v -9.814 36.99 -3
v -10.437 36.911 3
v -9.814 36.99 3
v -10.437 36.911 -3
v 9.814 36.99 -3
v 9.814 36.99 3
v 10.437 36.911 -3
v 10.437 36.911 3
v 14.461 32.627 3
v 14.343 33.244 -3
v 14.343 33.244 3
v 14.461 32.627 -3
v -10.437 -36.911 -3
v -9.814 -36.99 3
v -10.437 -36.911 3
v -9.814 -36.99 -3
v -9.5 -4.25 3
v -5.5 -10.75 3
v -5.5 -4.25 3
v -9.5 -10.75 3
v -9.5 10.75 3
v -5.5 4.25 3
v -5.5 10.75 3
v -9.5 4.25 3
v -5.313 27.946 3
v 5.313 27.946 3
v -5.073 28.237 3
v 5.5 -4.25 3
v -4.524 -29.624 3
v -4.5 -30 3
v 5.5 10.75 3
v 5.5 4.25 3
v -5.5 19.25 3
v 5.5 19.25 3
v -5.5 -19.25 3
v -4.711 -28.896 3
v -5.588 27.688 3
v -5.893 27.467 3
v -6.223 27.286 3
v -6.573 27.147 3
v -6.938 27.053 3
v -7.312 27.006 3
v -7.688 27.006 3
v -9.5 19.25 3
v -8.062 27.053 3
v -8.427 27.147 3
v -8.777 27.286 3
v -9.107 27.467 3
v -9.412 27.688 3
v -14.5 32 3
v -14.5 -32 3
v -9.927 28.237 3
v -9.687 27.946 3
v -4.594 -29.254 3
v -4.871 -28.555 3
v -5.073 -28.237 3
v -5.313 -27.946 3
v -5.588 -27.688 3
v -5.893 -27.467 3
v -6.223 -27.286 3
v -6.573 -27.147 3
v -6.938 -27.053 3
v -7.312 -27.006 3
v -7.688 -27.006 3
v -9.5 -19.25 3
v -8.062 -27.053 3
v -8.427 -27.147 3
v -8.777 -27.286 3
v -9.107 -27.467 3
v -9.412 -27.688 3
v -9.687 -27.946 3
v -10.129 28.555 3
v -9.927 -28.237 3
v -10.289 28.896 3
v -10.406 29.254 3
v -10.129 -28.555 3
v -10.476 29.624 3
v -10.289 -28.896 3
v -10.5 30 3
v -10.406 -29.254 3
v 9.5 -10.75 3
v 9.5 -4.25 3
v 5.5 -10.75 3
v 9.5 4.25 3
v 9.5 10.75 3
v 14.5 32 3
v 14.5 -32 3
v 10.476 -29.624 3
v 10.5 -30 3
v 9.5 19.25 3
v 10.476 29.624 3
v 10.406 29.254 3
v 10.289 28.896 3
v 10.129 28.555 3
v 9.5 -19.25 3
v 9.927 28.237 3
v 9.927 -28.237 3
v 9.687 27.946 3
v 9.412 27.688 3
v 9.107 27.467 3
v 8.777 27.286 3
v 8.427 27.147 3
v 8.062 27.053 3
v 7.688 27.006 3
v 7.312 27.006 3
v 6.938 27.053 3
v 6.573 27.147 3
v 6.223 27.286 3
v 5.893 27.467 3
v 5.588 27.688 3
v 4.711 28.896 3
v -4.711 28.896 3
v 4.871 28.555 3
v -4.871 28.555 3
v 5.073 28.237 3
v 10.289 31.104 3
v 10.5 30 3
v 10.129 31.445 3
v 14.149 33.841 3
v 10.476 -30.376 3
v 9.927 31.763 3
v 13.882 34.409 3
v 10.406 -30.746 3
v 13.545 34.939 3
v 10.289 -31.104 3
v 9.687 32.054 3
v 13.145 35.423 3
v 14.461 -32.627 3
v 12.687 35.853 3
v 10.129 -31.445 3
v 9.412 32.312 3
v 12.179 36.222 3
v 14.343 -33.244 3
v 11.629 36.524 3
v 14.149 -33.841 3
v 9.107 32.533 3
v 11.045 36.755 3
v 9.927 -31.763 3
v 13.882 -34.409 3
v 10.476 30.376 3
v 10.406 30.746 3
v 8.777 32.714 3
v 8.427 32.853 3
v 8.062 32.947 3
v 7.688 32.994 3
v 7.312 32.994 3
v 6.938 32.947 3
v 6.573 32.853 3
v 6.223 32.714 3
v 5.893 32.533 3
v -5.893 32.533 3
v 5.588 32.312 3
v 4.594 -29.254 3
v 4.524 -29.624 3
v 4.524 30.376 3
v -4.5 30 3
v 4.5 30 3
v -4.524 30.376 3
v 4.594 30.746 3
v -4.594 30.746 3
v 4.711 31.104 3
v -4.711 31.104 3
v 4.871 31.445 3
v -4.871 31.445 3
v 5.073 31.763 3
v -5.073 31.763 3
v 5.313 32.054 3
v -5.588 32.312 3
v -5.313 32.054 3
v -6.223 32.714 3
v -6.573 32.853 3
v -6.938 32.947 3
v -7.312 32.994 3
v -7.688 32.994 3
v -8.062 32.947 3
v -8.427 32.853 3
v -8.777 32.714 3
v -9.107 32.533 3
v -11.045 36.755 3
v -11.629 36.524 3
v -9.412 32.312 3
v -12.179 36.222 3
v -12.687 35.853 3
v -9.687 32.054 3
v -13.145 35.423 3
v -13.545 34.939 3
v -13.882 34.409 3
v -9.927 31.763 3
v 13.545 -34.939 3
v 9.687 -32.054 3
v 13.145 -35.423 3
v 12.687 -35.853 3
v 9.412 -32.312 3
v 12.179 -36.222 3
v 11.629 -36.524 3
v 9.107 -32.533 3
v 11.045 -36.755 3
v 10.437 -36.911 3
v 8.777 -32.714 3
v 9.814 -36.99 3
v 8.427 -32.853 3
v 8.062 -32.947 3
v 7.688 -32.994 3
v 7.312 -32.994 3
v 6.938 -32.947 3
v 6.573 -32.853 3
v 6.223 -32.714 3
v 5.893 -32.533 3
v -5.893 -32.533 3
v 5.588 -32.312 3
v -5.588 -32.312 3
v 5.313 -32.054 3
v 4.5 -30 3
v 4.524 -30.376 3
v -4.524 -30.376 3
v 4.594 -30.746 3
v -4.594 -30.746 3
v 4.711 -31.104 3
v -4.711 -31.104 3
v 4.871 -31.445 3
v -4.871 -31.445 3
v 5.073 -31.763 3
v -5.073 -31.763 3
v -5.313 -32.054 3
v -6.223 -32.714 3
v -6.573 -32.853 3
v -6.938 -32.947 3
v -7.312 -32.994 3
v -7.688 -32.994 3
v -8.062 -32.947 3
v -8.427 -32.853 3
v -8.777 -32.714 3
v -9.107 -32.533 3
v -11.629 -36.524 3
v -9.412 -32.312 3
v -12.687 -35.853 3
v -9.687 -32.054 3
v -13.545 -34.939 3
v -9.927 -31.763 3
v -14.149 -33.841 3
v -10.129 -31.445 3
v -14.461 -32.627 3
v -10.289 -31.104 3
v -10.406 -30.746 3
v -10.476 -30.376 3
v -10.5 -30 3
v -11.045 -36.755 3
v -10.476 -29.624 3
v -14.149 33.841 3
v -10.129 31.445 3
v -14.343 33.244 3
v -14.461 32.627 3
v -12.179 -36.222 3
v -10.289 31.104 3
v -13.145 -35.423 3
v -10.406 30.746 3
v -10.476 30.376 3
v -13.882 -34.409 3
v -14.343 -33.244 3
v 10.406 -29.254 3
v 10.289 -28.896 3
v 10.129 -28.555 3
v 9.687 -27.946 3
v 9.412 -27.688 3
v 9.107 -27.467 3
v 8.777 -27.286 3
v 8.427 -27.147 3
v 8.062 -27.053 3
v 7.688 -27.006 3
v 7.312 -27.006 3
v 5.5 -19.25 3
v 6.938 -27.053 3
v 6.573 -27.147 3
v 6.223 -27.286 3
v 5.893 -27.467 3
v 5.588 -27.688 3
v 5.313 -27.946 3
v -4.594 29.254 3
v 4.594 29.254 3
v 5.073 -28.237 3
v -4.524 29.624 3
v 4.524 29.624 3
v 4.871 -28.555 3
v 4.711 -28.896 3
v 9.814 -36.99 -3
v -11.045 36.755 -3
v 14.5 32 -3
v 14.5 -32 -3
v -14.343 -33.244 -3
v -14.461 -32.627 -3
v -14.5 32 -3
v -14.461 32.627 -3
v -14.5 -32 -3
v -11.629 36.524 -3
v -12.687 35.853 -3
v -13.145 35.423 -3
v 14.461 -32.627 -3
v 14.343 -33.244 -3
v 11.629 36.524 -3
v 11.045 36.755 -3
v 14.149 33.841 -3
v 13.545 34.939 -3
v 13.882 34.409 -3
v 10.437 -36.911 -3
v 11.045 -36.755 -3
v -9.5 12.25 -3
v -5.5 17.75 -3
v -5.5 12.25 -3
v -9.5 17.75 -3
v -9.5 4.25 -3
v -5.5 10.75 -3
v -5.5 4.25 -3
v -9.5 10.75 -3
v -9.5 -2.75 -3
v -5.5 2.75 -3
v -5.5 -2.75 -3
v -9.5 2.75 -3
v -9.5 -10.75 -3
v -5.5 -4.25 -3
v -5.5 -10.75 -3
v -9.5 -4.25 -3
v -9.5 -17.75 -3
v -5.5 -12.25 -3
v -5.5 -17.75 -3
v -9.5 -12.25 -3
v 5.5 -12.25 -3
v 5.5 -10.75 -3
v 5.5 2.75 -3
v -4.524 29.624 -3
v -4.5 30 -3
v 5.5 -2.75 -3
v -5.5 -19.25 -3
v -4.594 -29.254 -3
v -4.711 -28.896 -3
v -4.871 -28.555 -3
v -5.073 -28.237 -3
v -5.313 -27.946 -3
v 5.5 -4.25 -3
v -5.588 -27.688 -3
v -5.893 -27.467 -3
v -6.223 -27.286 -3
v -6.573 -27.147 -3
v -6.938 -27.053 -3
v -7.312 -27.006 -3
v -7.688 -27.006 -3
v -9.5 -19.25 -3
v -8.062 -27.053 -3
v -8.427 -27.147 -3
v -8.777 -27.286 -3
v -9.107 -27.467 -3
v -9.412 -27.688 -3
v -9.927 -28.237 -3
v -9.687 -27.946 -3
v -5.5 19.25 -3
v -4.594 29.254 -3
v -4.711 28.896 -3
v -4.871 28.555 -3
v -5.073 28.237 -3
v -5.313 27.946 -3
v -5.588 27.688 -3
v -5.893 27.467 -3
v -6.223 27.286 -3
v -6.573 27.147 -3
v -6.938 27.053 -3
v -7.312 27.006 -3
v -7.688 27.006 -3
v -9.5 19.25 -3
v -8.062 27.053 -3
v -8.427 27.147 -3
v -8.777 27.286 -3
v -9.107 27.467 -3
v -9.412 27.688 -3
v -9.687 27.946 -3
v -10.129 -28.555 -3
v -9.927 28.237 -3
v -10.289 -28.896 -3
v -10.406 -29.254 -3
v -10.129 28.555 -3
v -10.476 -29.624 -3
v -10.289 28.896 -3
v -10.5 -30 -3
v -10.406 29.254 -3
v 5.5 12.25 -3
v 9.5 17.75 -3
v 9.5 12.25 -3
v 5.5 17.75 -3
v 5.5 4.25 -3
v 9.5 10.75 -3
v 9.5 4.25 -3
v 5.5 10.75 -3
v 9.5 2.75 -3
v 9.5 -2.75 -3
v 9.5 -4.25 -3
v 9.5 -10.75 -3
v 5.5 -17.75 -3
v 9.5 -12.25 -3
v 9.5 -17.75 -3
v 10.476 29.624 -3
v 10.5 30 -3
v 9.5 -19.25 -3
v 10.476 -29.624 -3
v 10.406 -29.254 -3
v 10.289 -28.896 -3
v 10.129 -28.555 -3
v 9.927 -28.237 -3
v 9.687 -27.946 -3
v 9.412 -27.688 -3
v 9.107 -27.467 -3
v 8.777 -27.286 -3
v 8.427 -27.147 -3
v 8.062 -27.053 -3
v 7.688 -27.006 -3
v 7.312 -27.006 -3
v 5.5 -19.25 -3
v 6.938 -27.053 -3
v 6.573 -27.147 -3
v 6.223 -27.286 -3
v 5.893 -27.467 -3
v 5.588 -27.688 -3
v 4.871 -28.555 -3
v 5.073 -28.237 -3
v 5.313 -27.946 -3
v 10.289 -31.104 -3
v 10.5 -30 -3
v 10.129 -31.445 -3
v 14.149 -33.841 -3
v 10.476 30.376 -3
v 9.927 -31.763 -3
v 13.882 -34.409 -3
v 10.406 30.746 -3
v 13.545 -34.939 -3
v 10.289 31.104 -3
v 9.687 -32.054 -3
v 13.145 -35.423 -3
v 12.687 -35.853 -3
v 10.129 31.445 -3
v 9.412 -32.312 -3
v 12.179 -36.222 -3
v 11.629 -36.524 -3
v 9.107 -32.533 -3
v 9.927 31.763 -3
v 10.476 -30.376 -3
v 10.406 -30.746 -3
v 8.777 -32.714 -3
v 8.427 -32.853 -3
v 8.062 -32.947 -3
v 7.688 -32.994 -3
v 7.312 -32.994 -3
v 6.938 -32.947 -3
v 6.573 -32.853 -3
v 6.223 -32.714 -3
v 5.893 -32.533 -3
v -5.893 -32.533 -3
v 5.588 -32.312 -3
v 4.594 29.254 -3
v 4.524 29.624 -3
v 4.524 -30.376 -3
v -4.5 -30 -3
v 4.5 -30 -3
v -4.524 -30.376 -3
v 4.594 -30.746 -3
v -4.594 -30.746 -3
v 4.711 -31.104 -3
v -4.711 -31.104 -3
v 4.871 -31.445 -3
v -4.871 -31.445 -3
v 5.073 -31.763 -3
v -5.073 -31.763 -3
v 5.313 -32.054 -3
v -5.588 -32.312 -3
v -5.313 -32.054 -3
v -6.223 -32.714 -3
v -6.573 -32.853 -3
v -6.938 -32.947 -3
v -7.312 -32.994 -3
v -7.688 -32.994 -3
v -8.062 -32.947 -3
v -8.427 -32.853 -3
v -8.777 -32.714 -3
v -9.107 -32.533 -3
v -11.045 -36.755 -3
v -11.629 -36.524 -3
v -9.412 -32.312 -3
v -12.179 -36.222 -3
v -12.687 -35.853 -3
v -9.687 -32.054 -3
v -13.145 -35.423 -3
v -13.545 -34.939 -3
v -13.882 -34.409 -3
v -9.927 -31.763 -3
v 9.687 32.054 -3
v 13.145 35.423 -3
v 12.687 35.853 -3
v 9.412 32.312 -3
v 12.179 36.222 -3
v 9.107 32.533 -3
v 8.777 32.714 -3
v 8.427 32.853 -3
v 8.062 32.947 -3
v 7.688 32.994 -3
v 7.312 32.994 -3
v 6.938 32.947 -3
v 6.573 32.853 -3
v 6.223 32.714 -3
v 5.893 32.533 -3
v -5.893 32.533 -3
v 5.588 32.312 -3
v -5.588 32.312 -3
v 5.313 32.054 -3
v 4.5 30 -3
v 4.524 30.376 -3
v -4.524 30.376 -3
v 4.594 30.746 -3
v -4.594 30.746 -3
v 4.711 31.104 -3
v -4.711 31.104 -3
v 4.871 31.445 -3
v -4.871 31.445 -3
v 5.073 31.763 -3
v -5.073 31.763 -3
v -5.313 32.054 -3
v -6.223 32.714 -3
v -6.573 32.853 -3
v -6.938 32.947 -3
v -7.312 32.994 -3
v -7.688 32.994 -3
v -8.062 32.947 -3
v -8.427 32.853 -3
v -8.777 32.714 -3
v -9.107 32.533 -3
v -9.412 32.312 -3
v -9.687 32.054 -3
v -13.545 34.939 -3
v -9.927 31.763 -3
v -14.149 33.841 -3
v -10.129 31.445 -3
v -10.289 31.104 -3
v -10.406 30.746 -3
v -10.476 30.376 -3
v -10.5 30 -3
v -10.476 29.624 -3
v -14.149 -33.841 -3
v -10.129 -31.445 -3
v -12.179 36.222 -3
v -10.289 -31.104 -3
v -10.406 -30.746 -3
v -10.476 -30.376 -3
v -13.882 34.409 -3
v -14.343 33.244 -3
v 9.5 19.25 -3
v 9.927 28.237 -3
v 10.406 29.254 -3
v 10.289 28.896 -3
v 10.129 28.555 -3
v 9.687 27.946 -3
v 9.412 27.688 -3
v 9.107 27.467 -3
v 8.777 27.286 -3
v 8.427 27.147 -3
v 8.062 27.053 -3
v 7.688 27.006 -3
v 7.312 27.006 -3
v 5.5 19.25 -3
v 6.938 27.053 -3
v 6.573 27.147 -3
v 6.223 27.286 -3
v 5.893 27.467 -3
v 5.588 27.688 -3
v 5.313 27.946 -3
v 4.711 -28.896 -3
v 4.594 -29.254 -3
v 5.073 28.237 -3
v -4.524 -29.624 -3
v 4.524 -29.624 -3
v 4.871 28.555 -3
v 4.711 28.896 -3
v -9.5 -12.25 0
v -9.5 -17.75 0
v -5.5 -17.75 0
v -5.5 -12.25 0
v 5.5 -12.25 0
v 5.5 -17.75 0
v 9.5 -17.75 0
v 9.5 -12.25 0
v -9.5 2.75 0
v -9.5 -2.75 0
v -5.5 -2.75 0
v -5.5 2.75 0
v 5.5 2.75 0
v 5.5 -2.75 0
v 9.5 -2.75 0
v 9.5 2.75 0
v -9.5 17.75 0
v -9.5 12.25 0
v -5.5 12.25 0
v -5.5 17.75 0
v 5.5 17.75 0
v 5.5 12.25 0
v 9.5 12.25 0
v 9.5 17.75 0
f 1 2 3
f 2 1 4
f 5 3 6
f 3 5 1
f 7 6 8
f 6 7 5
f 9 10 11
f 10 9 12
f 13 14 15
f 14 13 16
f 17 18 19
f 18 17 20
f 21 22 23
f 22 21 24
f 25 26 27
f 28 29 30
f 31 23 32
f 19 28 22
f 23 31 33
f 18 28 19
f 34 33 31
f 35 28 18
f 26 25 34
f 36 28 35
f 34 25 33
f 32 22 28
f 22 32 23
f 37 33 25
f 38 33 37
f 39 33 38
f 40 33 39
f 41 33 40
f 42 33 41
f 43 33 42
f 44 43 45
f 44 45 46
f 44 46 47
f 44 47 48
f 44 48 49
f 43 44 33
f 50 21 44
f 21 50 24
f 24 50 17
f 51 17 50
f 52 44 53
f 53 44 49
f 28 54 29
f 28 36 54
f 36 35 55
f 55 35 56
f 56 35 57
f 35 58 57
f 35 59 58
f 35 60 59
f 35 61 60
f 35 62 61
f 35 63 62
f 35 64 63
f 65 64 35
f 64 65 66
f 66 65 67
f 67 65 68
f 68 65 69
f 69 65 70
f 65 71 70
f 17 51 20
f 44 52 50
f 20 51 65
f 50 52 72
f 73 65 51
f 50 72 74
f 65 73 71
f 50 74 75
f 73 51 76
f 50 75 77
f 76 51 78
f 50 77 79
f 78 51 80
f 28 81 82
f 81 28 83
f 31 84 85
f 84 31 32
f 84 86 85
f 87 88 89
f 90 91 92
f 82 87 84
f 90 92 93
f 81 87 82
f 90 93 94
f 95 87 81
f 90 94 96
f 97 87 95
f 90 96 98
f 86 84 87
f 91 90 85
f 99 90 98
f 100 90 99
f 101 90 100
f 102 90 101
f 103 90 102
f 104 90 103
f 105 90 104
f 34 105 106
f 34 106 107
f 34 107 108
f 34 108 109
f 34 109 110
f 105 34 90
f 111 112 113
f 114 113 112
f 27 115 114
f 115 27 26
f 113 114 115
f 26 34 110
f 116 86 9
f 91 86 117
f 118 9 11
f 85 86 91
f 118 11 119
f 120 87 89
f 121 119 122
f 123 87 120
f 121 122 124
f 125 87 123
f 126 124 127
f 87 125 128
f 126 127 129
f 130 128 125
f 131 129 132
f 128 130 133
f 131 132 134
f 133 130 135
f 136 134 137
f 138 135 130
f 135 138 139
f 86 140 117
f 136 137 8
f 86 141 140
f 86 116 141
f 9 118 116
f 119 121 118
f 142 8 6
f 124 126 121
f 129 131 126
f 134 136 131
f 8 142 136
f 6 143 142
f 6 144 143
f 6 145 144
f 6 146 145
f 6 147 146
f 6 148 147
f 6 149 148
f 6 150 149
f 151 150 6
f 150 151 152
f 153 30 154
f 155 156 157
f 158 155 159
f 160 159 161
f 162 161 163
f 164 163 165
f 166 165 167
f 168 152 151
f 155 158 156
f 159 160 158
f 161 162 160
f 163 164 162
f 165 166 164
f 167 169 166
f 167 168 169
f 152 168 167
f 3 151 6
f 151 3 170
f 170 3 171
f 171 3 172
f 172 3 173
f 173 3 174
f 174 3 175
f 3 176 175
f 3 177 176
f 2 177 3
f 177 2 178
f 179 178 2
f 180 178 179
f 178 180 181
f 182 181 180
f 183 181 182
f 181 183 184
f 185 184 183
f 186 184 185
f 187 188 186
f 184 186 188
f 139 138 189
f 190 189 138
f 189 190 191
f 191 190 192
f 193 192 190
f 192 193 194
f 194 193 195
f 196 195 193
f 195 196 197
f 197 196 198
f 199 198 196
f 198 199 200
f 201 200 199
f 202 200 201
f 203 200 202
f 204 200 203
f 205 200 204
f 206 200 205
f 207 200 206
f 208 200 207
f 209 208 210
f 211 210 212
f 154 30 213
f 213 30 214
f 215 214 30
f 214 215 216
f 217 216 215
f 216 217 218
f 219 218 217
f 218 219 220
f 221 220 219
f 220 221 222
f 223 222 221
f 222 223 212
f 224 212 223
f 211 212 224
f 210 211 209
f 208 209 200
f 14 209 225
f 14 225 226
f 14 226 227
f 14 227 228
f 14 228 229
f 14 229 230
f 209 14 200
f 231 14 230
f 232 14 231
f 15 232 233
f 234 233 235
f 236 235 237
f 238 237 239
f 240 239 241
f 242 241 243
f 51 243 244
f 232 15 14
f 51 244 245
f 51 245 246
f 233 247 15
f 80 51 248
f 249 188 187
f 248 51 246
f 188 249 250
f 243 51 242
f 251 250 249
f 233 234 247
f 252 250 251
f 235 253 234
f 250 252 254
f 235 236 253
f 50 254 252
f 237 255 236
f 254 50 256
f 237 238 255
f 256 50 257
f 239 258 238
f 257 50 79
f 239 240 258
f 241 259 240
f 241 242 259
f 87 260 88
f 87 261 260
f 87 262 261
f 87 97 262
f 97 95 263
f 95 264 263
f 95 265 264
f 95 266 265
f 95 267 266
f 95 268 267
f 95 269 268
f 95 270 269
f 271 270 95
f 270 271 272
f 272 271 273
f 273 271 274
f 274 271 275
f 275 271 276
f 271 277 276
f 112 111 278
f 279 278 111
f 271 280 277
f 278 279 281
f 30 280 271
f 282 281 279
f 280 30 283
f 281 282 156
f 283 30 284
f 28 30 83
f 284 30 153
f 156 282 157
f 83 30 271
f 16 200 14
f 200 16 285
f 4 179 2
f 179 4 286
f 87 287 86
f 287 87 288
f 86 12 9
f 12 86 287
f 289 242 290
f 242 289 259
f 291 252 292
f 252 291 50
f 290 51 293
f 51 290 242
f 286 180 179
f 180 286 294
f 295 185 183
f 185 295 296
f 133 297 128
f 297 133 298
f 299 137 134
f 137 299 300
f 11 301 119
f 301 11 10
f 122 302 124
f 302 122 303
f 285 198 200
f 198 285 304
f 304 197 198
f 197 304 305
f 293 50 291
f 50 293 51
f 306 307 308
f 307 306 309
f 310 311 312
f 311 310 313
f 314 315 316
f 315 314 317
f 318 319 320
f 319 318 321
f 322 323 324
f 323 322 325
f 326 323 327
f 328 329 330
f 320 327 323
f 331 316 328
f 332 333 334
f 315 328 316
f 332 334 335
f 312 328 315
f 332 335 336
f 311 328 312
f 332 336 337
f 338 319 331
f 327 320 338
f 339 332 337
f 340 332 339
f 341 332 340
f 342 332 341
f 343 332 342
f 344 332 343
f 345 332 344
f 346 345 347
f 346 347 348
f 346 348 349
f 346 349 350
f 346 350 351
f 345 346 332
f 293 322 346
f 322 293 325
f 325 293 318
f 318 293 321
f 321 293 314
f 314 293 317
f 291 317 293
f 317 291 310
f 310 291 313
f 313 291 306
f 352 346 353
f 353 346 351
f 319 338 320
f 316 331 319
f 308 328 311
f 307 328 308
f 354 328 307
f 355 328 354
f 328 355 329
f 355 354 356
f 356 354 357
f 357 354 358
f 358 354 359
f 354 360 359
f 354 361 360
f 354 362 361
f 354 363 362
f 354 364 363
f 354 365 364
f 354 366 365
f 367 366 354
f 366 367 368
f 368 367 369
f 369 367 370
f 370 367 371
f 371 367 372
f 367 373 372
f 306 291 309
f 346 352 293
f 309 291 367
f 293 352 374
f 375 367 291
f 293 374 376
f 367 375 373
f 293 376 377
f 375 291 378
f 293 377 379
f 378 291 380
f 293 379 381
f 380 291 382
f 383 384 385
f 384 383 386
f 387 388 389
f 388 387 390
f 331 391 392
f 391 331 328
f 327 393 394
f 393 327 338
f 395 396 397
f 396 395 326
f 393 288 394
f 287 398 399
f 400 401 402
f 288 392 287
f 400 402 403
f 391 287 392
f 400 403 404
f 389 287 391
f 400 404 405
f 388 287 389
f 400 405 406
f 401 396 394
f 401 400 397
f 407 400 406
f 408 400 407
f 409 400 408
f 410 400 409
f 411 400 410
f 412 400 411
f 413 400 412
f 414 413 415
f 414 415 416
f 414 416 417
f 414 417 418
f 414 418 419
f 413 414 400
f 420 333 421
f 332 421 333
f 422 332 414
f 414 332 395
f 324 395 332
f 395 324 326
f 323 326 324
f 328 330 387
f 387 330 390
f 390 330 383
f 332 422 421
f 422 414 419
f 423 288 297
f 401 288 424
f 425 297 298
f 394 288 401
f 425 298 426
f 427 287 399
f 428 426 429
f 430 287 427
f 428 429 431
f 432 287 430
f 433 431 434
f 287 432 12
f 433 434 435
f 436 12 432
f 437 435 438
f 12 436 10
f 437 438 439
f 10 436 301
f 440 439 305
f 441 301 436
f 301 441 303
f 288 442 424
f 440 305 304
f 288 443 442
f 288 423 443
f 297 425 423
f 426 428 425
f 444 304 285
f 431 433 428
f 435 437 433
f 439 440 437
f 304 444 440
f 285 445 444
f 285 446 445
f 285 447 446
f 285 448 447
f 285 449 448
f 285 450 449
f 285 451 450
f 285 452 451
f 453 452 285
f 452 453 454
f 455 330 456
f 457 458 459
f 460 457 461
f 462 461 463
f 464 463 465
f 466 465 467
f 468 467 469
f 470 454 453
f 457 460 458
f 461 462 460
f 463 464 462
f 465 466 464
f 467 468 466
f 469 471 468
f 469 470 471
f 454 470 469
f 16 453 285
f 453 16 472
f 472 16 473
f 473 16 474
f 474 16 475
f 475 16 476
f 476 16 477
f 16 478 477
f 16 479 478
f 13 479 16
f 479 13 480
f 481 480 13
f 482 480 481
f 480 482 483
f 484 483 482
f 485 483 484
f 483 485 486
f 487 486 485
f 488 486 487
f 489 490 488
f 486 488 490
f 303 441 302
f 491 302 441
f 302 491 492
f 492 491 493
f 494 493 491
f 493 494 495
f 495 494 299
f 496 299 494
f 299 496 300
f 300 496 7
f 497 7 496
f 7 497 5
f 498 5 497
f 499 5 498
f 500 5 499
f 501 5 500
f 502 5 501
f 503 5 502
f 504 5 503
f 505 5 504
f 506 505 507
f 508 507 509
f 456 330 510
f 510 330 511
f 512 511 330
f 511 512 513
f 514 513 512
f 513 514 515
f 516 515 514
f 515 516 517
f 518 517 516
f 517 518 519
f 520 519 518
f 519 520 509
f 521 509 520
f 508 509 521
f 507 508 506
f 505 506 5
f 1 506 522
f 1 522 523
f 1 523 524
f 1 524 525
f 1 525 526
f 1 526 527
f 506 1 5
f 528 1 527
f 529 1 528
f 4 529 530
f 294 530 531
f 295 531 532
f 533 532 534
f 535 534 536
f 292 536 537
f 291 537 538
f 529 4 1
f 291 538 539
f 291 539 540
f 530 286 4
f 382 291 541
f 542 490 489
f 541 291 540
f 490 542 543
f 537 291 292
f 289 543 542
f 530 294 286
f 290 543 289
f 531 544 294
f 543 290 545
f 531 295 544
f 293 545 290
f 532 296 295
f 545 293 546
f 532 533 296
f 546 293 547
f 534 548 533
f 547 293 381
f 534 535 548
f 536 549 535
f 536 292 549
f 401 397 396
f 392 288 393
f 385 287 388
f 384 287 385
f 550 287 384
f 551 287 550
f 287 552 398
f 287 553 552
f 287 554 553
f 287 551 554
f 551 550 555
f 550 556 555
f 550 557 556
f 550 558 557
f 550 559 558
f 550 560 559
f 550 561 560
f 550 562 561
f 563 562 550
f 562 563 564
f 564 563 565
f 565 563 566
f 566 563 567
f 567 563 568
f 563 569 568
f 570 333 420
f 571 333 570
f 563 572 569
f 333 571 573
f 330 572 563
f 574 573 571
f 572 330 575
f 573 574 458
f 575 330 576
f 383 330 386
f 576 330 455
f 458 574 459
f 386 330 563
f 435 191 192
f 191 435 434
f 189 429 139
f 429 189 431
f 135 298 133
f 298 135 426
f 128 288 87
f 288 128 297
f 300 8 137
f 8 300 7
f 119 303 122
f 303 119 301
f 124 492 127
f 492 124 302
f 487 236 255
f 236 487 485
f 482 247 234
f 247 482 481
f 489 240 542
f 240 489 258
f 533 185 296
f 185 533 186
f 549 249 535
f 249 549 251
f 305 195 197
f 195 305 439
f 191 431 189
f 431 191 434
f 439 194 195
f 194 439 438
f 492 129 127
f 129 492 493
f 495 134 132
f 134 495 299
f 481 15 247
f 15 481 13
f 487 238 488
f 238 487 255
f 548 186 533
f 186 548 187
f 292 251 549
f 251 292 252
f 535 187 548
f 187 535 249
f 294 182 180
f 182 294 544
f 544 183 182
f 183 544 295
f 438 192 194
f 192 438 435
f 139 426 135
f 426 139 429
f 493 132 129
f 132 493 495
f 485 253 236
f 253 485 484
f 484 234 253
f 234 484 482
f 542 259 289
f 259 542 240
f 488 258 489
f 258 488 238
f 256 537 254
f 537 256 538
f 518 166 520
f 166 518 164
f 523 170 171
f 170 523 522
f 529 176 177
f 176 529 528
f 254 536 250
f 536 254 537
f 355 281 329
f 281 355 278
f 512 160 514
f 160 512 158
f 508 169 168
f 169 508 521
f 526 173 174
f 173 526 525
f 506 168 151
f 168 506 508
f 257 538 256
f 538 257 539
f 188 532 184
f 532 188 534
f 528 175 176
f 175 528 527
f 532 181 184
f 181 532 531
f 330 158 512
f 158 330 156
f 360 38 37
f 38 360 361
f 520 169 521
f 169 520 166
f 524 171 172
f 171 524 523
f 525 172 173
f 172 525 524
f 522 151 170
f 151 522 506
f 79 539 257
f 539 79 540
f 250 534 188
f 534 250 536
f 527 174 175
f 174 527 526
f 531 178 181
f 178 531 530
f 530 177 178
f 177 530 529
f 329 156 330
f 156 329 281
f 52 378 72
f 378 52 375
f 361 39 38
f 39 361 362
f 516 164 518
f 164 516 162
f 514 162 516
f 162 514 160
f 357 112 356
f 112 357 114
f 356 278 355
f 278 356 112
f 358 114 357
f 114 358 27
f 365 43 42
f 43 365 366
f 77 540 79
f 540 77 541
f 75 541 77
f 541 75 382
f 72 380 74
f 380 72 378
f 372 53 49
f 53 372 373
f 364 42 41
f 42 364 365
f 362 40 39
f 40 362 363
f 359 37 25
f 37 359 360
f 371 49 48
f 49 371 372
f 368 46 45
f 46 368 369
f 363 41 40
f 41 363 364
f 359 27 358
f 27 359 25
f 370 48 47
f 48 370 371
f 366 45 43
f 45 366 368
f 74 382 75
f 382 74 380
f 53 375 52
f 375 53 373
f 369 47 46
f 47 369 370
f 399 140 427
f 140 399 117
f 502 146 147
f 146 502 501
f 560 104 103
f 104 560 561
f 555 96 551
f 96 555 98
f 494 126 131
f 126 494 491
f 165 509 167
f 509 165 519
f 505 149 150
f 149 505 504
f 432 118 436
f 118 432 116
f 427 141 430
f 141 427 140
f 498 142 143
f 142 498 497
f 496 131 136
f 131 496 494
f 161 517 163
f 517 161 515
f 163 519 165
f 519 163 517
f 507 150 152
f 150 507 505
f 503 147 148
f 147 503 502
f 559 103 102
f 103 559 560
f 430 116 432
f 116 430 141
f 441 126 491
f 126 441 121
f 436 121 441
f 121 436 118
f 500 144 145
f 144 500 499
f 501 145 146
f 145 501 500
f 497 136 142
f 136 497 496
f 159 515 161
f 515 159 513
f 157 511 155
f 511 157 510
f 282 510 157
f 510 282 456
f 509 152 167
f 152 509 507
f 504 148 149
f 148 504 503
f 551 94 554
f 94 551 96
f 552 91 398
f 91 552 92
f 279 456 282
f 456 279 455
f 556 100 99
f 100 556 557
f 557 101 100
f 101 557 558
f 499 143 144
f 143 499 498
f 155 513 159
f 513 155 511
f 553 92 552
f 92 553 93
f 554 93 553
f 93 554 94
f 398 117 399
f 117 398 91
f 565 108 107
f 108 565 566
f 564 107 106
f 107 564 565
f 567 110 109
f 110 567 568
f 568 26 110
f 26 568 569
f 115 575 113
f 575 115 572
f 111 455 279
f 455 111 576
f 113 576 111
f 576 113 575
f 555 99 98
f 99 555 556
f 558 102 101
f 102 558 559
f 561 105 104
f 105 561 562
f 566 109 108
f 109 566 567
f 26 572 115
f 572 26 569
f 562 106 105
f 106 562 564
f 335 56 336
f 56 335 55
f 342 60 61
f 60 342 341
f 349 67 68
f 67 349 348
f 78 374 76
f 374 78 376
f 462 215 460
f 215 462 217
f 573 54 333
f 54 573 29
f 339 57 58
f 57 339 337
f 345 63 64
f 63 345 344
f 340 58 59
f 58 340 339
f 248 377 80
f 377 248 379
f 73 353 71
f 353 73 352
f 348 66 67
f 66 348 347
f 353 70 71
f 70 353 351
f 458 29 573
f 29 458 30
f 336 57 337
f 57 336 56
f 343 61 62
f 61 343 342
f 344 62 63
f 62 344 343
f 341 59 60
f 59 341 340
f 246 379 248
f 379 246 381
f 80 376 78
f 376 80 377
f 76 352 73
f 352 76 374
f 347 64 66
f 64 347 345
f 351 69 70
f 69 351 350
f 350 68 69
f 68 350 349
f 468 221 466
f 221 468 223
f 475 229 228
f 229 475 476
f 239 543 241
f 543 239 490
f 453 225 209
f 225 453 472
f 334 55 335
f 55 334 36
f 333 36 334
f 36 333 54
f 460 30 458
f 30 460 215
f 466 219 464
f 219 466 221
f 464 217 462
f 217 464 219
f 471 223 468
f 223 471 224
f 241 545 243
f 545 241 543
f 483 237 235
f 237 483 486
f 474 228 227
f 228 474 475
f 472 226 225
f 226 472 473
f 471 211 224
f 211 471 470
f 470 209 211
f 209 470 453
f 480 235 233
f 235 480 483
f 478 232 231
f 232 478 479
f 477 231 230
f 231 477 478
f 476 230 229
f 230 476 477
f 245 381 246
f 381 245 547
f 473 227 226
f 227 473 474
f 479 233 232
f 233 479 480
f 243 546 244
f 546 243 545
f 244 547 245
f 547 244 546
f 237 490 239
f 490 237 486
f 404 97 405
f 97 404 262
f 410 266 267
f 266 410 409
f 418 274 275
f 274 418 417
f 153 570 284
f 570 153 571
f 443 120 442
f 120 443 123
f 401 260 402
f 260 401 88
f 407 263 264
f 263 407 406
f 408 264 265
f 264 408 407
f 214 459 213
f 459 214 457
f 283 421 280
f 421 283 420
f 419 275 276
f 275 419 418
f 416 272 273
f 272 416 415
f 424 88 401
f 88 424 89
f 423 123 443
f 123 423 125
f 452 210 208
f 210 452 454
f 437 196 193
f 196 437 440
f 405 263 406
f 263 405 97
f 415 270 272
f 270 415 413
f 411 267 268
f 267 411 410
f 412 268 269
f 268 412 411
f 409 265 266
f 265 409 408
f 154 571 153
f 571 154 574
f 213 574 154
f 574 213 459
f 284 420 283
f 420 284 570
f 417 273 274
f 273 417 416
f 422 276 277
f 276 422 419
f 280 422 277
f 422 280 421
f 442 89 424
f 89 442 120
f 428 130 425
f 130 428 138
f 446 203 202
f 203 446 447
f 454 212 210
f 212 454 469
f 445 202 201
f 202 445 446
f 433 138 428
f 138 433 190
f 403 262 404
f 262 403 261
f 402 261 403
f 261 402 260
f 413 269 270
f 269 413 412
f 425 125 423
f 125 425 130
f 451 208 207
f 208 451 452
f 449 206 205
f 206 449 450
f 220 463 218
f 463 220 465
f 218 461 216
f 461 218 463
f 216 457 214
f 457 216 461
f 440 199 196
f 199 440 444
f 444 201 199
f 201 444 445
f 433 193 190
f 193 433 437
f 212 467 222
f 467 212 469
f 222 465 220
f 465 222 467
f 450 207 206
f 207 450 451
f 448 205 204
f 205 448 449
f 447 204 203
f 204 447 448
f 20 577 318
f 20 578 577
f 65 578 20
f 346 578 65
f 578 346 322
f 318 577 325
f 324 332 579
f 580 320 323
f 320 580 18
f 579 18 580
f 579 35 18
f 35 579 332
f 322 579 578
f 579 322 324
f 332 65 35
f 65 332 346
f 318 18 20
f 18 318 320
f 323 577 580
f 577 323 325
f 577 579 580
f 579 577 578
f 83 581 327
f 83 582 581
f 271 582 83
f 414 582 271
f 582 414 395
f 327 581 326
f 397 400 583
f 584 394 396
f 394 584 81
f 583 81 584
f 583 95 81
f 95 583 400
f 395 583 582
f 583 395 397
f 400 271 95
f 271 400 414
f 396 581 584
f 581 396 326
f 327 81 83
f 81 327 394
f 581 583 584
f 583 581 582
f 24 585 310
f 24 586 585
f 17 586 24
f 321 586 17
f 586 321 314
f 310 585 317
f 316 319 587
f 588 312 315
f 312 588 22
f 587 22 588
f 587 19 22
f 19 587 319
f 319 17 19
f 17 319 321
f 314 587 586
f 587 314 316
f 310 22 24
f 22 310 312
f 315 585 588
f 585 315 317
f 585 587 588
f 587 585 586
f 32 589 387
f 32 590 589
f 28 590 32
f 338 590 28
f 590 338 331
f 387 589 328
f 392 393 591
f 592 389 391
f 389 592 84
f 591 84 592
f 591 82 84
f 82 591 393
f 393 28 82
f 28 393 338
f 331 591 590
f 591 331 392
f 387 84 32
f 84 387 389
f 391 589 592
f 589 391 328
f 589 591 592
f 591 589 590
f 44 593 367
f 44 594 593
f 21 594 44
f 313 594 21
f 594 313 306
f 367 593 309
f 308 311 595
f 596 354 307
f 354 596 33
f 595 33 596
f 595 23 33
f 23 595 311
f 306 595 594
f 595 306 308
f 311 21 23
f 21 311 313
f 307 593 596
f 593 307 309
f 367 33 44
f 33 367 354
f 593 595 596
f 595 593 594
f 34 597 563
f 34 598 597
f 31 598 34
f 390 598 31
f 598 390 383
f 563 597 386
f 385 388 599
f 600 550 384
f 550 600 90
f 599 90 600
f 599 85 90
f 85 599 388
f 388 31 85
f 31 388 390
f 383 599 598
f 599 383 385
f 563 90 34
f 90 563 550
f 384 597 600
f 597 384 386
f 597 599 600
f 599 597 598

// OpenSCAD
$fn = 50;


difference() {
	union() {
		translate(v = [0, 0, -3.0000000000]) {
			hull() {
				translate(v = [-9.5000000000, 32.0000000000, 0]) {
					cylinder(h = 6, r = 5);
				}
				translate(v = [9.5000000000, 32.0000000000, 0]) {
					cylinder(h = 6, r = 5);
				}
				translate(v = [-9.5000000000, -32.0000000000, 0]) {
					cylinder(h = 6, r = 5);
				}
				translate(v = [9.5000000000, -32.0000000000, 0]) {
					cylinder(h = 6, r = 5);
				}
			}
		}
		translate(v = [0, 0, -3.0000000000]) {
			hull() {
				translate(v = [-9.5000000000, 32.0000000000, 0]) {
					cylinder(h = 6, r = 5);
				}
				translate(v = [9.5000000000, 32.0000000000, 0]) {
					cylinder(h = 6, r = 5);
				}
				translate(v = [-9.5000000000, -32.0000000000, 0]) {
					cylinder(h = 6, r = 5);
				}
				translate(v = [9.5000000000, -32.0000000000, 0]) {
					cylinder(h = 6, r = 5);
				}
			}
		}
	}
	union() {
		translate(v = [-7.5000000000, 30.0000000000, -50.0000000000]) {
			cylinder(h = 100, r = 3.0000000000);
		}
		translate(v = [7.5000000000, 30.0000000000, -50.0000000000]) {
			cylinder(h = 100, r = 3.0000000000);
		}
		translate(v = [-7.5000000000, -30.0000000000, -50.0000000000]) {
			cylinder(h = 100, r = 3.0000000000);
		}
		translate(v = [7.5000000000, -30.0000000000, -50.0000000000]) {
			cylinder(h = 100, r = 3.0000000000);
		}
		translate(v = [-9.5000000000, -19.2500000000, -50]) {
			cube(size = [4, 1.5000000000, 100]);
		}
		translate(v = [-9.5000000000, -12.2500000000, -50]) {
			cube(size = [4, 1.5000000000, 100]);
		}
		translate(v = [-9.5000000000, -19.2500000000, 0]) {
			cube(size = [4, 8.5000000000, 3]);
		}
		translate(v = [5.5000000000, -19.2500000000, -50]) {
			cube(size = [4, 1.5000000000, 100]);
		}
		translate(v = [5.5000000000, -12.2500000000, -50]) {
			cube(size = [4, 1.5000000000, 100]);
		}
		translate(v = [5.5000000000, -19.2500000000, 0]) {
			cube(size = [4, 8.5000000000, 3]);
		}
		translate(v = [-9.5000000000, -4.2500000000, -50]) {
			cube(size = [4, 1.5000000000, 100]);
		}
		translate(v = [-9.5000000000, 2.7500000000, -50]) {
			cube(size = [4, 1.5000000000, 100]);
		}
		translate(v = [-9.5000000000, -4.2500000000, 0]) {
			cube(size = [4, 8.5000000000, 3]);
		}
		translate(v = [5.5000000000, -4.2500000000, -50]) {
			cube(size = [4, 1.5000000000, 100]);
		}
		translate(v = [5.5000000000, 2.7500000000, -50]) {
			cube(size = [4, 1.5000000000, 100]);
		}
		translate(v = [5.5000000000, -4.2500000000, 0]) {
			cube(size = [4, 8.5000000000, 3]);
		}
		translate(v = [-9.5000000000, 10.7500000000, -50]) {
			cube(size = [4, 1.5000000000, 100]);
		}
		translate(v = [-9.5000000000, 17.7500000000, -50]) {
			cube(size = [4, 1.5000000000, 100]);
		}
		translate(v = [-9.5000000000, 10.7500000000, 0]) {
			cube(size = [4, 8.5000000000, 3]);
		}
		translate(v = [5.5000000000, 10.7500000000, -50]) {
			cube(size = [4, 1.5000000000, 100]);
		}
		translate(v = [5.5000000000, 17.7500000000, -50]) {
			cube(size = [4, 1.5000000000, 100]);
		}
		translate(v = [5.5000000000, 10.7500000000, 0]) {
			cube(size = [4, 8.5000000000, 3]);
		}
	}
}
